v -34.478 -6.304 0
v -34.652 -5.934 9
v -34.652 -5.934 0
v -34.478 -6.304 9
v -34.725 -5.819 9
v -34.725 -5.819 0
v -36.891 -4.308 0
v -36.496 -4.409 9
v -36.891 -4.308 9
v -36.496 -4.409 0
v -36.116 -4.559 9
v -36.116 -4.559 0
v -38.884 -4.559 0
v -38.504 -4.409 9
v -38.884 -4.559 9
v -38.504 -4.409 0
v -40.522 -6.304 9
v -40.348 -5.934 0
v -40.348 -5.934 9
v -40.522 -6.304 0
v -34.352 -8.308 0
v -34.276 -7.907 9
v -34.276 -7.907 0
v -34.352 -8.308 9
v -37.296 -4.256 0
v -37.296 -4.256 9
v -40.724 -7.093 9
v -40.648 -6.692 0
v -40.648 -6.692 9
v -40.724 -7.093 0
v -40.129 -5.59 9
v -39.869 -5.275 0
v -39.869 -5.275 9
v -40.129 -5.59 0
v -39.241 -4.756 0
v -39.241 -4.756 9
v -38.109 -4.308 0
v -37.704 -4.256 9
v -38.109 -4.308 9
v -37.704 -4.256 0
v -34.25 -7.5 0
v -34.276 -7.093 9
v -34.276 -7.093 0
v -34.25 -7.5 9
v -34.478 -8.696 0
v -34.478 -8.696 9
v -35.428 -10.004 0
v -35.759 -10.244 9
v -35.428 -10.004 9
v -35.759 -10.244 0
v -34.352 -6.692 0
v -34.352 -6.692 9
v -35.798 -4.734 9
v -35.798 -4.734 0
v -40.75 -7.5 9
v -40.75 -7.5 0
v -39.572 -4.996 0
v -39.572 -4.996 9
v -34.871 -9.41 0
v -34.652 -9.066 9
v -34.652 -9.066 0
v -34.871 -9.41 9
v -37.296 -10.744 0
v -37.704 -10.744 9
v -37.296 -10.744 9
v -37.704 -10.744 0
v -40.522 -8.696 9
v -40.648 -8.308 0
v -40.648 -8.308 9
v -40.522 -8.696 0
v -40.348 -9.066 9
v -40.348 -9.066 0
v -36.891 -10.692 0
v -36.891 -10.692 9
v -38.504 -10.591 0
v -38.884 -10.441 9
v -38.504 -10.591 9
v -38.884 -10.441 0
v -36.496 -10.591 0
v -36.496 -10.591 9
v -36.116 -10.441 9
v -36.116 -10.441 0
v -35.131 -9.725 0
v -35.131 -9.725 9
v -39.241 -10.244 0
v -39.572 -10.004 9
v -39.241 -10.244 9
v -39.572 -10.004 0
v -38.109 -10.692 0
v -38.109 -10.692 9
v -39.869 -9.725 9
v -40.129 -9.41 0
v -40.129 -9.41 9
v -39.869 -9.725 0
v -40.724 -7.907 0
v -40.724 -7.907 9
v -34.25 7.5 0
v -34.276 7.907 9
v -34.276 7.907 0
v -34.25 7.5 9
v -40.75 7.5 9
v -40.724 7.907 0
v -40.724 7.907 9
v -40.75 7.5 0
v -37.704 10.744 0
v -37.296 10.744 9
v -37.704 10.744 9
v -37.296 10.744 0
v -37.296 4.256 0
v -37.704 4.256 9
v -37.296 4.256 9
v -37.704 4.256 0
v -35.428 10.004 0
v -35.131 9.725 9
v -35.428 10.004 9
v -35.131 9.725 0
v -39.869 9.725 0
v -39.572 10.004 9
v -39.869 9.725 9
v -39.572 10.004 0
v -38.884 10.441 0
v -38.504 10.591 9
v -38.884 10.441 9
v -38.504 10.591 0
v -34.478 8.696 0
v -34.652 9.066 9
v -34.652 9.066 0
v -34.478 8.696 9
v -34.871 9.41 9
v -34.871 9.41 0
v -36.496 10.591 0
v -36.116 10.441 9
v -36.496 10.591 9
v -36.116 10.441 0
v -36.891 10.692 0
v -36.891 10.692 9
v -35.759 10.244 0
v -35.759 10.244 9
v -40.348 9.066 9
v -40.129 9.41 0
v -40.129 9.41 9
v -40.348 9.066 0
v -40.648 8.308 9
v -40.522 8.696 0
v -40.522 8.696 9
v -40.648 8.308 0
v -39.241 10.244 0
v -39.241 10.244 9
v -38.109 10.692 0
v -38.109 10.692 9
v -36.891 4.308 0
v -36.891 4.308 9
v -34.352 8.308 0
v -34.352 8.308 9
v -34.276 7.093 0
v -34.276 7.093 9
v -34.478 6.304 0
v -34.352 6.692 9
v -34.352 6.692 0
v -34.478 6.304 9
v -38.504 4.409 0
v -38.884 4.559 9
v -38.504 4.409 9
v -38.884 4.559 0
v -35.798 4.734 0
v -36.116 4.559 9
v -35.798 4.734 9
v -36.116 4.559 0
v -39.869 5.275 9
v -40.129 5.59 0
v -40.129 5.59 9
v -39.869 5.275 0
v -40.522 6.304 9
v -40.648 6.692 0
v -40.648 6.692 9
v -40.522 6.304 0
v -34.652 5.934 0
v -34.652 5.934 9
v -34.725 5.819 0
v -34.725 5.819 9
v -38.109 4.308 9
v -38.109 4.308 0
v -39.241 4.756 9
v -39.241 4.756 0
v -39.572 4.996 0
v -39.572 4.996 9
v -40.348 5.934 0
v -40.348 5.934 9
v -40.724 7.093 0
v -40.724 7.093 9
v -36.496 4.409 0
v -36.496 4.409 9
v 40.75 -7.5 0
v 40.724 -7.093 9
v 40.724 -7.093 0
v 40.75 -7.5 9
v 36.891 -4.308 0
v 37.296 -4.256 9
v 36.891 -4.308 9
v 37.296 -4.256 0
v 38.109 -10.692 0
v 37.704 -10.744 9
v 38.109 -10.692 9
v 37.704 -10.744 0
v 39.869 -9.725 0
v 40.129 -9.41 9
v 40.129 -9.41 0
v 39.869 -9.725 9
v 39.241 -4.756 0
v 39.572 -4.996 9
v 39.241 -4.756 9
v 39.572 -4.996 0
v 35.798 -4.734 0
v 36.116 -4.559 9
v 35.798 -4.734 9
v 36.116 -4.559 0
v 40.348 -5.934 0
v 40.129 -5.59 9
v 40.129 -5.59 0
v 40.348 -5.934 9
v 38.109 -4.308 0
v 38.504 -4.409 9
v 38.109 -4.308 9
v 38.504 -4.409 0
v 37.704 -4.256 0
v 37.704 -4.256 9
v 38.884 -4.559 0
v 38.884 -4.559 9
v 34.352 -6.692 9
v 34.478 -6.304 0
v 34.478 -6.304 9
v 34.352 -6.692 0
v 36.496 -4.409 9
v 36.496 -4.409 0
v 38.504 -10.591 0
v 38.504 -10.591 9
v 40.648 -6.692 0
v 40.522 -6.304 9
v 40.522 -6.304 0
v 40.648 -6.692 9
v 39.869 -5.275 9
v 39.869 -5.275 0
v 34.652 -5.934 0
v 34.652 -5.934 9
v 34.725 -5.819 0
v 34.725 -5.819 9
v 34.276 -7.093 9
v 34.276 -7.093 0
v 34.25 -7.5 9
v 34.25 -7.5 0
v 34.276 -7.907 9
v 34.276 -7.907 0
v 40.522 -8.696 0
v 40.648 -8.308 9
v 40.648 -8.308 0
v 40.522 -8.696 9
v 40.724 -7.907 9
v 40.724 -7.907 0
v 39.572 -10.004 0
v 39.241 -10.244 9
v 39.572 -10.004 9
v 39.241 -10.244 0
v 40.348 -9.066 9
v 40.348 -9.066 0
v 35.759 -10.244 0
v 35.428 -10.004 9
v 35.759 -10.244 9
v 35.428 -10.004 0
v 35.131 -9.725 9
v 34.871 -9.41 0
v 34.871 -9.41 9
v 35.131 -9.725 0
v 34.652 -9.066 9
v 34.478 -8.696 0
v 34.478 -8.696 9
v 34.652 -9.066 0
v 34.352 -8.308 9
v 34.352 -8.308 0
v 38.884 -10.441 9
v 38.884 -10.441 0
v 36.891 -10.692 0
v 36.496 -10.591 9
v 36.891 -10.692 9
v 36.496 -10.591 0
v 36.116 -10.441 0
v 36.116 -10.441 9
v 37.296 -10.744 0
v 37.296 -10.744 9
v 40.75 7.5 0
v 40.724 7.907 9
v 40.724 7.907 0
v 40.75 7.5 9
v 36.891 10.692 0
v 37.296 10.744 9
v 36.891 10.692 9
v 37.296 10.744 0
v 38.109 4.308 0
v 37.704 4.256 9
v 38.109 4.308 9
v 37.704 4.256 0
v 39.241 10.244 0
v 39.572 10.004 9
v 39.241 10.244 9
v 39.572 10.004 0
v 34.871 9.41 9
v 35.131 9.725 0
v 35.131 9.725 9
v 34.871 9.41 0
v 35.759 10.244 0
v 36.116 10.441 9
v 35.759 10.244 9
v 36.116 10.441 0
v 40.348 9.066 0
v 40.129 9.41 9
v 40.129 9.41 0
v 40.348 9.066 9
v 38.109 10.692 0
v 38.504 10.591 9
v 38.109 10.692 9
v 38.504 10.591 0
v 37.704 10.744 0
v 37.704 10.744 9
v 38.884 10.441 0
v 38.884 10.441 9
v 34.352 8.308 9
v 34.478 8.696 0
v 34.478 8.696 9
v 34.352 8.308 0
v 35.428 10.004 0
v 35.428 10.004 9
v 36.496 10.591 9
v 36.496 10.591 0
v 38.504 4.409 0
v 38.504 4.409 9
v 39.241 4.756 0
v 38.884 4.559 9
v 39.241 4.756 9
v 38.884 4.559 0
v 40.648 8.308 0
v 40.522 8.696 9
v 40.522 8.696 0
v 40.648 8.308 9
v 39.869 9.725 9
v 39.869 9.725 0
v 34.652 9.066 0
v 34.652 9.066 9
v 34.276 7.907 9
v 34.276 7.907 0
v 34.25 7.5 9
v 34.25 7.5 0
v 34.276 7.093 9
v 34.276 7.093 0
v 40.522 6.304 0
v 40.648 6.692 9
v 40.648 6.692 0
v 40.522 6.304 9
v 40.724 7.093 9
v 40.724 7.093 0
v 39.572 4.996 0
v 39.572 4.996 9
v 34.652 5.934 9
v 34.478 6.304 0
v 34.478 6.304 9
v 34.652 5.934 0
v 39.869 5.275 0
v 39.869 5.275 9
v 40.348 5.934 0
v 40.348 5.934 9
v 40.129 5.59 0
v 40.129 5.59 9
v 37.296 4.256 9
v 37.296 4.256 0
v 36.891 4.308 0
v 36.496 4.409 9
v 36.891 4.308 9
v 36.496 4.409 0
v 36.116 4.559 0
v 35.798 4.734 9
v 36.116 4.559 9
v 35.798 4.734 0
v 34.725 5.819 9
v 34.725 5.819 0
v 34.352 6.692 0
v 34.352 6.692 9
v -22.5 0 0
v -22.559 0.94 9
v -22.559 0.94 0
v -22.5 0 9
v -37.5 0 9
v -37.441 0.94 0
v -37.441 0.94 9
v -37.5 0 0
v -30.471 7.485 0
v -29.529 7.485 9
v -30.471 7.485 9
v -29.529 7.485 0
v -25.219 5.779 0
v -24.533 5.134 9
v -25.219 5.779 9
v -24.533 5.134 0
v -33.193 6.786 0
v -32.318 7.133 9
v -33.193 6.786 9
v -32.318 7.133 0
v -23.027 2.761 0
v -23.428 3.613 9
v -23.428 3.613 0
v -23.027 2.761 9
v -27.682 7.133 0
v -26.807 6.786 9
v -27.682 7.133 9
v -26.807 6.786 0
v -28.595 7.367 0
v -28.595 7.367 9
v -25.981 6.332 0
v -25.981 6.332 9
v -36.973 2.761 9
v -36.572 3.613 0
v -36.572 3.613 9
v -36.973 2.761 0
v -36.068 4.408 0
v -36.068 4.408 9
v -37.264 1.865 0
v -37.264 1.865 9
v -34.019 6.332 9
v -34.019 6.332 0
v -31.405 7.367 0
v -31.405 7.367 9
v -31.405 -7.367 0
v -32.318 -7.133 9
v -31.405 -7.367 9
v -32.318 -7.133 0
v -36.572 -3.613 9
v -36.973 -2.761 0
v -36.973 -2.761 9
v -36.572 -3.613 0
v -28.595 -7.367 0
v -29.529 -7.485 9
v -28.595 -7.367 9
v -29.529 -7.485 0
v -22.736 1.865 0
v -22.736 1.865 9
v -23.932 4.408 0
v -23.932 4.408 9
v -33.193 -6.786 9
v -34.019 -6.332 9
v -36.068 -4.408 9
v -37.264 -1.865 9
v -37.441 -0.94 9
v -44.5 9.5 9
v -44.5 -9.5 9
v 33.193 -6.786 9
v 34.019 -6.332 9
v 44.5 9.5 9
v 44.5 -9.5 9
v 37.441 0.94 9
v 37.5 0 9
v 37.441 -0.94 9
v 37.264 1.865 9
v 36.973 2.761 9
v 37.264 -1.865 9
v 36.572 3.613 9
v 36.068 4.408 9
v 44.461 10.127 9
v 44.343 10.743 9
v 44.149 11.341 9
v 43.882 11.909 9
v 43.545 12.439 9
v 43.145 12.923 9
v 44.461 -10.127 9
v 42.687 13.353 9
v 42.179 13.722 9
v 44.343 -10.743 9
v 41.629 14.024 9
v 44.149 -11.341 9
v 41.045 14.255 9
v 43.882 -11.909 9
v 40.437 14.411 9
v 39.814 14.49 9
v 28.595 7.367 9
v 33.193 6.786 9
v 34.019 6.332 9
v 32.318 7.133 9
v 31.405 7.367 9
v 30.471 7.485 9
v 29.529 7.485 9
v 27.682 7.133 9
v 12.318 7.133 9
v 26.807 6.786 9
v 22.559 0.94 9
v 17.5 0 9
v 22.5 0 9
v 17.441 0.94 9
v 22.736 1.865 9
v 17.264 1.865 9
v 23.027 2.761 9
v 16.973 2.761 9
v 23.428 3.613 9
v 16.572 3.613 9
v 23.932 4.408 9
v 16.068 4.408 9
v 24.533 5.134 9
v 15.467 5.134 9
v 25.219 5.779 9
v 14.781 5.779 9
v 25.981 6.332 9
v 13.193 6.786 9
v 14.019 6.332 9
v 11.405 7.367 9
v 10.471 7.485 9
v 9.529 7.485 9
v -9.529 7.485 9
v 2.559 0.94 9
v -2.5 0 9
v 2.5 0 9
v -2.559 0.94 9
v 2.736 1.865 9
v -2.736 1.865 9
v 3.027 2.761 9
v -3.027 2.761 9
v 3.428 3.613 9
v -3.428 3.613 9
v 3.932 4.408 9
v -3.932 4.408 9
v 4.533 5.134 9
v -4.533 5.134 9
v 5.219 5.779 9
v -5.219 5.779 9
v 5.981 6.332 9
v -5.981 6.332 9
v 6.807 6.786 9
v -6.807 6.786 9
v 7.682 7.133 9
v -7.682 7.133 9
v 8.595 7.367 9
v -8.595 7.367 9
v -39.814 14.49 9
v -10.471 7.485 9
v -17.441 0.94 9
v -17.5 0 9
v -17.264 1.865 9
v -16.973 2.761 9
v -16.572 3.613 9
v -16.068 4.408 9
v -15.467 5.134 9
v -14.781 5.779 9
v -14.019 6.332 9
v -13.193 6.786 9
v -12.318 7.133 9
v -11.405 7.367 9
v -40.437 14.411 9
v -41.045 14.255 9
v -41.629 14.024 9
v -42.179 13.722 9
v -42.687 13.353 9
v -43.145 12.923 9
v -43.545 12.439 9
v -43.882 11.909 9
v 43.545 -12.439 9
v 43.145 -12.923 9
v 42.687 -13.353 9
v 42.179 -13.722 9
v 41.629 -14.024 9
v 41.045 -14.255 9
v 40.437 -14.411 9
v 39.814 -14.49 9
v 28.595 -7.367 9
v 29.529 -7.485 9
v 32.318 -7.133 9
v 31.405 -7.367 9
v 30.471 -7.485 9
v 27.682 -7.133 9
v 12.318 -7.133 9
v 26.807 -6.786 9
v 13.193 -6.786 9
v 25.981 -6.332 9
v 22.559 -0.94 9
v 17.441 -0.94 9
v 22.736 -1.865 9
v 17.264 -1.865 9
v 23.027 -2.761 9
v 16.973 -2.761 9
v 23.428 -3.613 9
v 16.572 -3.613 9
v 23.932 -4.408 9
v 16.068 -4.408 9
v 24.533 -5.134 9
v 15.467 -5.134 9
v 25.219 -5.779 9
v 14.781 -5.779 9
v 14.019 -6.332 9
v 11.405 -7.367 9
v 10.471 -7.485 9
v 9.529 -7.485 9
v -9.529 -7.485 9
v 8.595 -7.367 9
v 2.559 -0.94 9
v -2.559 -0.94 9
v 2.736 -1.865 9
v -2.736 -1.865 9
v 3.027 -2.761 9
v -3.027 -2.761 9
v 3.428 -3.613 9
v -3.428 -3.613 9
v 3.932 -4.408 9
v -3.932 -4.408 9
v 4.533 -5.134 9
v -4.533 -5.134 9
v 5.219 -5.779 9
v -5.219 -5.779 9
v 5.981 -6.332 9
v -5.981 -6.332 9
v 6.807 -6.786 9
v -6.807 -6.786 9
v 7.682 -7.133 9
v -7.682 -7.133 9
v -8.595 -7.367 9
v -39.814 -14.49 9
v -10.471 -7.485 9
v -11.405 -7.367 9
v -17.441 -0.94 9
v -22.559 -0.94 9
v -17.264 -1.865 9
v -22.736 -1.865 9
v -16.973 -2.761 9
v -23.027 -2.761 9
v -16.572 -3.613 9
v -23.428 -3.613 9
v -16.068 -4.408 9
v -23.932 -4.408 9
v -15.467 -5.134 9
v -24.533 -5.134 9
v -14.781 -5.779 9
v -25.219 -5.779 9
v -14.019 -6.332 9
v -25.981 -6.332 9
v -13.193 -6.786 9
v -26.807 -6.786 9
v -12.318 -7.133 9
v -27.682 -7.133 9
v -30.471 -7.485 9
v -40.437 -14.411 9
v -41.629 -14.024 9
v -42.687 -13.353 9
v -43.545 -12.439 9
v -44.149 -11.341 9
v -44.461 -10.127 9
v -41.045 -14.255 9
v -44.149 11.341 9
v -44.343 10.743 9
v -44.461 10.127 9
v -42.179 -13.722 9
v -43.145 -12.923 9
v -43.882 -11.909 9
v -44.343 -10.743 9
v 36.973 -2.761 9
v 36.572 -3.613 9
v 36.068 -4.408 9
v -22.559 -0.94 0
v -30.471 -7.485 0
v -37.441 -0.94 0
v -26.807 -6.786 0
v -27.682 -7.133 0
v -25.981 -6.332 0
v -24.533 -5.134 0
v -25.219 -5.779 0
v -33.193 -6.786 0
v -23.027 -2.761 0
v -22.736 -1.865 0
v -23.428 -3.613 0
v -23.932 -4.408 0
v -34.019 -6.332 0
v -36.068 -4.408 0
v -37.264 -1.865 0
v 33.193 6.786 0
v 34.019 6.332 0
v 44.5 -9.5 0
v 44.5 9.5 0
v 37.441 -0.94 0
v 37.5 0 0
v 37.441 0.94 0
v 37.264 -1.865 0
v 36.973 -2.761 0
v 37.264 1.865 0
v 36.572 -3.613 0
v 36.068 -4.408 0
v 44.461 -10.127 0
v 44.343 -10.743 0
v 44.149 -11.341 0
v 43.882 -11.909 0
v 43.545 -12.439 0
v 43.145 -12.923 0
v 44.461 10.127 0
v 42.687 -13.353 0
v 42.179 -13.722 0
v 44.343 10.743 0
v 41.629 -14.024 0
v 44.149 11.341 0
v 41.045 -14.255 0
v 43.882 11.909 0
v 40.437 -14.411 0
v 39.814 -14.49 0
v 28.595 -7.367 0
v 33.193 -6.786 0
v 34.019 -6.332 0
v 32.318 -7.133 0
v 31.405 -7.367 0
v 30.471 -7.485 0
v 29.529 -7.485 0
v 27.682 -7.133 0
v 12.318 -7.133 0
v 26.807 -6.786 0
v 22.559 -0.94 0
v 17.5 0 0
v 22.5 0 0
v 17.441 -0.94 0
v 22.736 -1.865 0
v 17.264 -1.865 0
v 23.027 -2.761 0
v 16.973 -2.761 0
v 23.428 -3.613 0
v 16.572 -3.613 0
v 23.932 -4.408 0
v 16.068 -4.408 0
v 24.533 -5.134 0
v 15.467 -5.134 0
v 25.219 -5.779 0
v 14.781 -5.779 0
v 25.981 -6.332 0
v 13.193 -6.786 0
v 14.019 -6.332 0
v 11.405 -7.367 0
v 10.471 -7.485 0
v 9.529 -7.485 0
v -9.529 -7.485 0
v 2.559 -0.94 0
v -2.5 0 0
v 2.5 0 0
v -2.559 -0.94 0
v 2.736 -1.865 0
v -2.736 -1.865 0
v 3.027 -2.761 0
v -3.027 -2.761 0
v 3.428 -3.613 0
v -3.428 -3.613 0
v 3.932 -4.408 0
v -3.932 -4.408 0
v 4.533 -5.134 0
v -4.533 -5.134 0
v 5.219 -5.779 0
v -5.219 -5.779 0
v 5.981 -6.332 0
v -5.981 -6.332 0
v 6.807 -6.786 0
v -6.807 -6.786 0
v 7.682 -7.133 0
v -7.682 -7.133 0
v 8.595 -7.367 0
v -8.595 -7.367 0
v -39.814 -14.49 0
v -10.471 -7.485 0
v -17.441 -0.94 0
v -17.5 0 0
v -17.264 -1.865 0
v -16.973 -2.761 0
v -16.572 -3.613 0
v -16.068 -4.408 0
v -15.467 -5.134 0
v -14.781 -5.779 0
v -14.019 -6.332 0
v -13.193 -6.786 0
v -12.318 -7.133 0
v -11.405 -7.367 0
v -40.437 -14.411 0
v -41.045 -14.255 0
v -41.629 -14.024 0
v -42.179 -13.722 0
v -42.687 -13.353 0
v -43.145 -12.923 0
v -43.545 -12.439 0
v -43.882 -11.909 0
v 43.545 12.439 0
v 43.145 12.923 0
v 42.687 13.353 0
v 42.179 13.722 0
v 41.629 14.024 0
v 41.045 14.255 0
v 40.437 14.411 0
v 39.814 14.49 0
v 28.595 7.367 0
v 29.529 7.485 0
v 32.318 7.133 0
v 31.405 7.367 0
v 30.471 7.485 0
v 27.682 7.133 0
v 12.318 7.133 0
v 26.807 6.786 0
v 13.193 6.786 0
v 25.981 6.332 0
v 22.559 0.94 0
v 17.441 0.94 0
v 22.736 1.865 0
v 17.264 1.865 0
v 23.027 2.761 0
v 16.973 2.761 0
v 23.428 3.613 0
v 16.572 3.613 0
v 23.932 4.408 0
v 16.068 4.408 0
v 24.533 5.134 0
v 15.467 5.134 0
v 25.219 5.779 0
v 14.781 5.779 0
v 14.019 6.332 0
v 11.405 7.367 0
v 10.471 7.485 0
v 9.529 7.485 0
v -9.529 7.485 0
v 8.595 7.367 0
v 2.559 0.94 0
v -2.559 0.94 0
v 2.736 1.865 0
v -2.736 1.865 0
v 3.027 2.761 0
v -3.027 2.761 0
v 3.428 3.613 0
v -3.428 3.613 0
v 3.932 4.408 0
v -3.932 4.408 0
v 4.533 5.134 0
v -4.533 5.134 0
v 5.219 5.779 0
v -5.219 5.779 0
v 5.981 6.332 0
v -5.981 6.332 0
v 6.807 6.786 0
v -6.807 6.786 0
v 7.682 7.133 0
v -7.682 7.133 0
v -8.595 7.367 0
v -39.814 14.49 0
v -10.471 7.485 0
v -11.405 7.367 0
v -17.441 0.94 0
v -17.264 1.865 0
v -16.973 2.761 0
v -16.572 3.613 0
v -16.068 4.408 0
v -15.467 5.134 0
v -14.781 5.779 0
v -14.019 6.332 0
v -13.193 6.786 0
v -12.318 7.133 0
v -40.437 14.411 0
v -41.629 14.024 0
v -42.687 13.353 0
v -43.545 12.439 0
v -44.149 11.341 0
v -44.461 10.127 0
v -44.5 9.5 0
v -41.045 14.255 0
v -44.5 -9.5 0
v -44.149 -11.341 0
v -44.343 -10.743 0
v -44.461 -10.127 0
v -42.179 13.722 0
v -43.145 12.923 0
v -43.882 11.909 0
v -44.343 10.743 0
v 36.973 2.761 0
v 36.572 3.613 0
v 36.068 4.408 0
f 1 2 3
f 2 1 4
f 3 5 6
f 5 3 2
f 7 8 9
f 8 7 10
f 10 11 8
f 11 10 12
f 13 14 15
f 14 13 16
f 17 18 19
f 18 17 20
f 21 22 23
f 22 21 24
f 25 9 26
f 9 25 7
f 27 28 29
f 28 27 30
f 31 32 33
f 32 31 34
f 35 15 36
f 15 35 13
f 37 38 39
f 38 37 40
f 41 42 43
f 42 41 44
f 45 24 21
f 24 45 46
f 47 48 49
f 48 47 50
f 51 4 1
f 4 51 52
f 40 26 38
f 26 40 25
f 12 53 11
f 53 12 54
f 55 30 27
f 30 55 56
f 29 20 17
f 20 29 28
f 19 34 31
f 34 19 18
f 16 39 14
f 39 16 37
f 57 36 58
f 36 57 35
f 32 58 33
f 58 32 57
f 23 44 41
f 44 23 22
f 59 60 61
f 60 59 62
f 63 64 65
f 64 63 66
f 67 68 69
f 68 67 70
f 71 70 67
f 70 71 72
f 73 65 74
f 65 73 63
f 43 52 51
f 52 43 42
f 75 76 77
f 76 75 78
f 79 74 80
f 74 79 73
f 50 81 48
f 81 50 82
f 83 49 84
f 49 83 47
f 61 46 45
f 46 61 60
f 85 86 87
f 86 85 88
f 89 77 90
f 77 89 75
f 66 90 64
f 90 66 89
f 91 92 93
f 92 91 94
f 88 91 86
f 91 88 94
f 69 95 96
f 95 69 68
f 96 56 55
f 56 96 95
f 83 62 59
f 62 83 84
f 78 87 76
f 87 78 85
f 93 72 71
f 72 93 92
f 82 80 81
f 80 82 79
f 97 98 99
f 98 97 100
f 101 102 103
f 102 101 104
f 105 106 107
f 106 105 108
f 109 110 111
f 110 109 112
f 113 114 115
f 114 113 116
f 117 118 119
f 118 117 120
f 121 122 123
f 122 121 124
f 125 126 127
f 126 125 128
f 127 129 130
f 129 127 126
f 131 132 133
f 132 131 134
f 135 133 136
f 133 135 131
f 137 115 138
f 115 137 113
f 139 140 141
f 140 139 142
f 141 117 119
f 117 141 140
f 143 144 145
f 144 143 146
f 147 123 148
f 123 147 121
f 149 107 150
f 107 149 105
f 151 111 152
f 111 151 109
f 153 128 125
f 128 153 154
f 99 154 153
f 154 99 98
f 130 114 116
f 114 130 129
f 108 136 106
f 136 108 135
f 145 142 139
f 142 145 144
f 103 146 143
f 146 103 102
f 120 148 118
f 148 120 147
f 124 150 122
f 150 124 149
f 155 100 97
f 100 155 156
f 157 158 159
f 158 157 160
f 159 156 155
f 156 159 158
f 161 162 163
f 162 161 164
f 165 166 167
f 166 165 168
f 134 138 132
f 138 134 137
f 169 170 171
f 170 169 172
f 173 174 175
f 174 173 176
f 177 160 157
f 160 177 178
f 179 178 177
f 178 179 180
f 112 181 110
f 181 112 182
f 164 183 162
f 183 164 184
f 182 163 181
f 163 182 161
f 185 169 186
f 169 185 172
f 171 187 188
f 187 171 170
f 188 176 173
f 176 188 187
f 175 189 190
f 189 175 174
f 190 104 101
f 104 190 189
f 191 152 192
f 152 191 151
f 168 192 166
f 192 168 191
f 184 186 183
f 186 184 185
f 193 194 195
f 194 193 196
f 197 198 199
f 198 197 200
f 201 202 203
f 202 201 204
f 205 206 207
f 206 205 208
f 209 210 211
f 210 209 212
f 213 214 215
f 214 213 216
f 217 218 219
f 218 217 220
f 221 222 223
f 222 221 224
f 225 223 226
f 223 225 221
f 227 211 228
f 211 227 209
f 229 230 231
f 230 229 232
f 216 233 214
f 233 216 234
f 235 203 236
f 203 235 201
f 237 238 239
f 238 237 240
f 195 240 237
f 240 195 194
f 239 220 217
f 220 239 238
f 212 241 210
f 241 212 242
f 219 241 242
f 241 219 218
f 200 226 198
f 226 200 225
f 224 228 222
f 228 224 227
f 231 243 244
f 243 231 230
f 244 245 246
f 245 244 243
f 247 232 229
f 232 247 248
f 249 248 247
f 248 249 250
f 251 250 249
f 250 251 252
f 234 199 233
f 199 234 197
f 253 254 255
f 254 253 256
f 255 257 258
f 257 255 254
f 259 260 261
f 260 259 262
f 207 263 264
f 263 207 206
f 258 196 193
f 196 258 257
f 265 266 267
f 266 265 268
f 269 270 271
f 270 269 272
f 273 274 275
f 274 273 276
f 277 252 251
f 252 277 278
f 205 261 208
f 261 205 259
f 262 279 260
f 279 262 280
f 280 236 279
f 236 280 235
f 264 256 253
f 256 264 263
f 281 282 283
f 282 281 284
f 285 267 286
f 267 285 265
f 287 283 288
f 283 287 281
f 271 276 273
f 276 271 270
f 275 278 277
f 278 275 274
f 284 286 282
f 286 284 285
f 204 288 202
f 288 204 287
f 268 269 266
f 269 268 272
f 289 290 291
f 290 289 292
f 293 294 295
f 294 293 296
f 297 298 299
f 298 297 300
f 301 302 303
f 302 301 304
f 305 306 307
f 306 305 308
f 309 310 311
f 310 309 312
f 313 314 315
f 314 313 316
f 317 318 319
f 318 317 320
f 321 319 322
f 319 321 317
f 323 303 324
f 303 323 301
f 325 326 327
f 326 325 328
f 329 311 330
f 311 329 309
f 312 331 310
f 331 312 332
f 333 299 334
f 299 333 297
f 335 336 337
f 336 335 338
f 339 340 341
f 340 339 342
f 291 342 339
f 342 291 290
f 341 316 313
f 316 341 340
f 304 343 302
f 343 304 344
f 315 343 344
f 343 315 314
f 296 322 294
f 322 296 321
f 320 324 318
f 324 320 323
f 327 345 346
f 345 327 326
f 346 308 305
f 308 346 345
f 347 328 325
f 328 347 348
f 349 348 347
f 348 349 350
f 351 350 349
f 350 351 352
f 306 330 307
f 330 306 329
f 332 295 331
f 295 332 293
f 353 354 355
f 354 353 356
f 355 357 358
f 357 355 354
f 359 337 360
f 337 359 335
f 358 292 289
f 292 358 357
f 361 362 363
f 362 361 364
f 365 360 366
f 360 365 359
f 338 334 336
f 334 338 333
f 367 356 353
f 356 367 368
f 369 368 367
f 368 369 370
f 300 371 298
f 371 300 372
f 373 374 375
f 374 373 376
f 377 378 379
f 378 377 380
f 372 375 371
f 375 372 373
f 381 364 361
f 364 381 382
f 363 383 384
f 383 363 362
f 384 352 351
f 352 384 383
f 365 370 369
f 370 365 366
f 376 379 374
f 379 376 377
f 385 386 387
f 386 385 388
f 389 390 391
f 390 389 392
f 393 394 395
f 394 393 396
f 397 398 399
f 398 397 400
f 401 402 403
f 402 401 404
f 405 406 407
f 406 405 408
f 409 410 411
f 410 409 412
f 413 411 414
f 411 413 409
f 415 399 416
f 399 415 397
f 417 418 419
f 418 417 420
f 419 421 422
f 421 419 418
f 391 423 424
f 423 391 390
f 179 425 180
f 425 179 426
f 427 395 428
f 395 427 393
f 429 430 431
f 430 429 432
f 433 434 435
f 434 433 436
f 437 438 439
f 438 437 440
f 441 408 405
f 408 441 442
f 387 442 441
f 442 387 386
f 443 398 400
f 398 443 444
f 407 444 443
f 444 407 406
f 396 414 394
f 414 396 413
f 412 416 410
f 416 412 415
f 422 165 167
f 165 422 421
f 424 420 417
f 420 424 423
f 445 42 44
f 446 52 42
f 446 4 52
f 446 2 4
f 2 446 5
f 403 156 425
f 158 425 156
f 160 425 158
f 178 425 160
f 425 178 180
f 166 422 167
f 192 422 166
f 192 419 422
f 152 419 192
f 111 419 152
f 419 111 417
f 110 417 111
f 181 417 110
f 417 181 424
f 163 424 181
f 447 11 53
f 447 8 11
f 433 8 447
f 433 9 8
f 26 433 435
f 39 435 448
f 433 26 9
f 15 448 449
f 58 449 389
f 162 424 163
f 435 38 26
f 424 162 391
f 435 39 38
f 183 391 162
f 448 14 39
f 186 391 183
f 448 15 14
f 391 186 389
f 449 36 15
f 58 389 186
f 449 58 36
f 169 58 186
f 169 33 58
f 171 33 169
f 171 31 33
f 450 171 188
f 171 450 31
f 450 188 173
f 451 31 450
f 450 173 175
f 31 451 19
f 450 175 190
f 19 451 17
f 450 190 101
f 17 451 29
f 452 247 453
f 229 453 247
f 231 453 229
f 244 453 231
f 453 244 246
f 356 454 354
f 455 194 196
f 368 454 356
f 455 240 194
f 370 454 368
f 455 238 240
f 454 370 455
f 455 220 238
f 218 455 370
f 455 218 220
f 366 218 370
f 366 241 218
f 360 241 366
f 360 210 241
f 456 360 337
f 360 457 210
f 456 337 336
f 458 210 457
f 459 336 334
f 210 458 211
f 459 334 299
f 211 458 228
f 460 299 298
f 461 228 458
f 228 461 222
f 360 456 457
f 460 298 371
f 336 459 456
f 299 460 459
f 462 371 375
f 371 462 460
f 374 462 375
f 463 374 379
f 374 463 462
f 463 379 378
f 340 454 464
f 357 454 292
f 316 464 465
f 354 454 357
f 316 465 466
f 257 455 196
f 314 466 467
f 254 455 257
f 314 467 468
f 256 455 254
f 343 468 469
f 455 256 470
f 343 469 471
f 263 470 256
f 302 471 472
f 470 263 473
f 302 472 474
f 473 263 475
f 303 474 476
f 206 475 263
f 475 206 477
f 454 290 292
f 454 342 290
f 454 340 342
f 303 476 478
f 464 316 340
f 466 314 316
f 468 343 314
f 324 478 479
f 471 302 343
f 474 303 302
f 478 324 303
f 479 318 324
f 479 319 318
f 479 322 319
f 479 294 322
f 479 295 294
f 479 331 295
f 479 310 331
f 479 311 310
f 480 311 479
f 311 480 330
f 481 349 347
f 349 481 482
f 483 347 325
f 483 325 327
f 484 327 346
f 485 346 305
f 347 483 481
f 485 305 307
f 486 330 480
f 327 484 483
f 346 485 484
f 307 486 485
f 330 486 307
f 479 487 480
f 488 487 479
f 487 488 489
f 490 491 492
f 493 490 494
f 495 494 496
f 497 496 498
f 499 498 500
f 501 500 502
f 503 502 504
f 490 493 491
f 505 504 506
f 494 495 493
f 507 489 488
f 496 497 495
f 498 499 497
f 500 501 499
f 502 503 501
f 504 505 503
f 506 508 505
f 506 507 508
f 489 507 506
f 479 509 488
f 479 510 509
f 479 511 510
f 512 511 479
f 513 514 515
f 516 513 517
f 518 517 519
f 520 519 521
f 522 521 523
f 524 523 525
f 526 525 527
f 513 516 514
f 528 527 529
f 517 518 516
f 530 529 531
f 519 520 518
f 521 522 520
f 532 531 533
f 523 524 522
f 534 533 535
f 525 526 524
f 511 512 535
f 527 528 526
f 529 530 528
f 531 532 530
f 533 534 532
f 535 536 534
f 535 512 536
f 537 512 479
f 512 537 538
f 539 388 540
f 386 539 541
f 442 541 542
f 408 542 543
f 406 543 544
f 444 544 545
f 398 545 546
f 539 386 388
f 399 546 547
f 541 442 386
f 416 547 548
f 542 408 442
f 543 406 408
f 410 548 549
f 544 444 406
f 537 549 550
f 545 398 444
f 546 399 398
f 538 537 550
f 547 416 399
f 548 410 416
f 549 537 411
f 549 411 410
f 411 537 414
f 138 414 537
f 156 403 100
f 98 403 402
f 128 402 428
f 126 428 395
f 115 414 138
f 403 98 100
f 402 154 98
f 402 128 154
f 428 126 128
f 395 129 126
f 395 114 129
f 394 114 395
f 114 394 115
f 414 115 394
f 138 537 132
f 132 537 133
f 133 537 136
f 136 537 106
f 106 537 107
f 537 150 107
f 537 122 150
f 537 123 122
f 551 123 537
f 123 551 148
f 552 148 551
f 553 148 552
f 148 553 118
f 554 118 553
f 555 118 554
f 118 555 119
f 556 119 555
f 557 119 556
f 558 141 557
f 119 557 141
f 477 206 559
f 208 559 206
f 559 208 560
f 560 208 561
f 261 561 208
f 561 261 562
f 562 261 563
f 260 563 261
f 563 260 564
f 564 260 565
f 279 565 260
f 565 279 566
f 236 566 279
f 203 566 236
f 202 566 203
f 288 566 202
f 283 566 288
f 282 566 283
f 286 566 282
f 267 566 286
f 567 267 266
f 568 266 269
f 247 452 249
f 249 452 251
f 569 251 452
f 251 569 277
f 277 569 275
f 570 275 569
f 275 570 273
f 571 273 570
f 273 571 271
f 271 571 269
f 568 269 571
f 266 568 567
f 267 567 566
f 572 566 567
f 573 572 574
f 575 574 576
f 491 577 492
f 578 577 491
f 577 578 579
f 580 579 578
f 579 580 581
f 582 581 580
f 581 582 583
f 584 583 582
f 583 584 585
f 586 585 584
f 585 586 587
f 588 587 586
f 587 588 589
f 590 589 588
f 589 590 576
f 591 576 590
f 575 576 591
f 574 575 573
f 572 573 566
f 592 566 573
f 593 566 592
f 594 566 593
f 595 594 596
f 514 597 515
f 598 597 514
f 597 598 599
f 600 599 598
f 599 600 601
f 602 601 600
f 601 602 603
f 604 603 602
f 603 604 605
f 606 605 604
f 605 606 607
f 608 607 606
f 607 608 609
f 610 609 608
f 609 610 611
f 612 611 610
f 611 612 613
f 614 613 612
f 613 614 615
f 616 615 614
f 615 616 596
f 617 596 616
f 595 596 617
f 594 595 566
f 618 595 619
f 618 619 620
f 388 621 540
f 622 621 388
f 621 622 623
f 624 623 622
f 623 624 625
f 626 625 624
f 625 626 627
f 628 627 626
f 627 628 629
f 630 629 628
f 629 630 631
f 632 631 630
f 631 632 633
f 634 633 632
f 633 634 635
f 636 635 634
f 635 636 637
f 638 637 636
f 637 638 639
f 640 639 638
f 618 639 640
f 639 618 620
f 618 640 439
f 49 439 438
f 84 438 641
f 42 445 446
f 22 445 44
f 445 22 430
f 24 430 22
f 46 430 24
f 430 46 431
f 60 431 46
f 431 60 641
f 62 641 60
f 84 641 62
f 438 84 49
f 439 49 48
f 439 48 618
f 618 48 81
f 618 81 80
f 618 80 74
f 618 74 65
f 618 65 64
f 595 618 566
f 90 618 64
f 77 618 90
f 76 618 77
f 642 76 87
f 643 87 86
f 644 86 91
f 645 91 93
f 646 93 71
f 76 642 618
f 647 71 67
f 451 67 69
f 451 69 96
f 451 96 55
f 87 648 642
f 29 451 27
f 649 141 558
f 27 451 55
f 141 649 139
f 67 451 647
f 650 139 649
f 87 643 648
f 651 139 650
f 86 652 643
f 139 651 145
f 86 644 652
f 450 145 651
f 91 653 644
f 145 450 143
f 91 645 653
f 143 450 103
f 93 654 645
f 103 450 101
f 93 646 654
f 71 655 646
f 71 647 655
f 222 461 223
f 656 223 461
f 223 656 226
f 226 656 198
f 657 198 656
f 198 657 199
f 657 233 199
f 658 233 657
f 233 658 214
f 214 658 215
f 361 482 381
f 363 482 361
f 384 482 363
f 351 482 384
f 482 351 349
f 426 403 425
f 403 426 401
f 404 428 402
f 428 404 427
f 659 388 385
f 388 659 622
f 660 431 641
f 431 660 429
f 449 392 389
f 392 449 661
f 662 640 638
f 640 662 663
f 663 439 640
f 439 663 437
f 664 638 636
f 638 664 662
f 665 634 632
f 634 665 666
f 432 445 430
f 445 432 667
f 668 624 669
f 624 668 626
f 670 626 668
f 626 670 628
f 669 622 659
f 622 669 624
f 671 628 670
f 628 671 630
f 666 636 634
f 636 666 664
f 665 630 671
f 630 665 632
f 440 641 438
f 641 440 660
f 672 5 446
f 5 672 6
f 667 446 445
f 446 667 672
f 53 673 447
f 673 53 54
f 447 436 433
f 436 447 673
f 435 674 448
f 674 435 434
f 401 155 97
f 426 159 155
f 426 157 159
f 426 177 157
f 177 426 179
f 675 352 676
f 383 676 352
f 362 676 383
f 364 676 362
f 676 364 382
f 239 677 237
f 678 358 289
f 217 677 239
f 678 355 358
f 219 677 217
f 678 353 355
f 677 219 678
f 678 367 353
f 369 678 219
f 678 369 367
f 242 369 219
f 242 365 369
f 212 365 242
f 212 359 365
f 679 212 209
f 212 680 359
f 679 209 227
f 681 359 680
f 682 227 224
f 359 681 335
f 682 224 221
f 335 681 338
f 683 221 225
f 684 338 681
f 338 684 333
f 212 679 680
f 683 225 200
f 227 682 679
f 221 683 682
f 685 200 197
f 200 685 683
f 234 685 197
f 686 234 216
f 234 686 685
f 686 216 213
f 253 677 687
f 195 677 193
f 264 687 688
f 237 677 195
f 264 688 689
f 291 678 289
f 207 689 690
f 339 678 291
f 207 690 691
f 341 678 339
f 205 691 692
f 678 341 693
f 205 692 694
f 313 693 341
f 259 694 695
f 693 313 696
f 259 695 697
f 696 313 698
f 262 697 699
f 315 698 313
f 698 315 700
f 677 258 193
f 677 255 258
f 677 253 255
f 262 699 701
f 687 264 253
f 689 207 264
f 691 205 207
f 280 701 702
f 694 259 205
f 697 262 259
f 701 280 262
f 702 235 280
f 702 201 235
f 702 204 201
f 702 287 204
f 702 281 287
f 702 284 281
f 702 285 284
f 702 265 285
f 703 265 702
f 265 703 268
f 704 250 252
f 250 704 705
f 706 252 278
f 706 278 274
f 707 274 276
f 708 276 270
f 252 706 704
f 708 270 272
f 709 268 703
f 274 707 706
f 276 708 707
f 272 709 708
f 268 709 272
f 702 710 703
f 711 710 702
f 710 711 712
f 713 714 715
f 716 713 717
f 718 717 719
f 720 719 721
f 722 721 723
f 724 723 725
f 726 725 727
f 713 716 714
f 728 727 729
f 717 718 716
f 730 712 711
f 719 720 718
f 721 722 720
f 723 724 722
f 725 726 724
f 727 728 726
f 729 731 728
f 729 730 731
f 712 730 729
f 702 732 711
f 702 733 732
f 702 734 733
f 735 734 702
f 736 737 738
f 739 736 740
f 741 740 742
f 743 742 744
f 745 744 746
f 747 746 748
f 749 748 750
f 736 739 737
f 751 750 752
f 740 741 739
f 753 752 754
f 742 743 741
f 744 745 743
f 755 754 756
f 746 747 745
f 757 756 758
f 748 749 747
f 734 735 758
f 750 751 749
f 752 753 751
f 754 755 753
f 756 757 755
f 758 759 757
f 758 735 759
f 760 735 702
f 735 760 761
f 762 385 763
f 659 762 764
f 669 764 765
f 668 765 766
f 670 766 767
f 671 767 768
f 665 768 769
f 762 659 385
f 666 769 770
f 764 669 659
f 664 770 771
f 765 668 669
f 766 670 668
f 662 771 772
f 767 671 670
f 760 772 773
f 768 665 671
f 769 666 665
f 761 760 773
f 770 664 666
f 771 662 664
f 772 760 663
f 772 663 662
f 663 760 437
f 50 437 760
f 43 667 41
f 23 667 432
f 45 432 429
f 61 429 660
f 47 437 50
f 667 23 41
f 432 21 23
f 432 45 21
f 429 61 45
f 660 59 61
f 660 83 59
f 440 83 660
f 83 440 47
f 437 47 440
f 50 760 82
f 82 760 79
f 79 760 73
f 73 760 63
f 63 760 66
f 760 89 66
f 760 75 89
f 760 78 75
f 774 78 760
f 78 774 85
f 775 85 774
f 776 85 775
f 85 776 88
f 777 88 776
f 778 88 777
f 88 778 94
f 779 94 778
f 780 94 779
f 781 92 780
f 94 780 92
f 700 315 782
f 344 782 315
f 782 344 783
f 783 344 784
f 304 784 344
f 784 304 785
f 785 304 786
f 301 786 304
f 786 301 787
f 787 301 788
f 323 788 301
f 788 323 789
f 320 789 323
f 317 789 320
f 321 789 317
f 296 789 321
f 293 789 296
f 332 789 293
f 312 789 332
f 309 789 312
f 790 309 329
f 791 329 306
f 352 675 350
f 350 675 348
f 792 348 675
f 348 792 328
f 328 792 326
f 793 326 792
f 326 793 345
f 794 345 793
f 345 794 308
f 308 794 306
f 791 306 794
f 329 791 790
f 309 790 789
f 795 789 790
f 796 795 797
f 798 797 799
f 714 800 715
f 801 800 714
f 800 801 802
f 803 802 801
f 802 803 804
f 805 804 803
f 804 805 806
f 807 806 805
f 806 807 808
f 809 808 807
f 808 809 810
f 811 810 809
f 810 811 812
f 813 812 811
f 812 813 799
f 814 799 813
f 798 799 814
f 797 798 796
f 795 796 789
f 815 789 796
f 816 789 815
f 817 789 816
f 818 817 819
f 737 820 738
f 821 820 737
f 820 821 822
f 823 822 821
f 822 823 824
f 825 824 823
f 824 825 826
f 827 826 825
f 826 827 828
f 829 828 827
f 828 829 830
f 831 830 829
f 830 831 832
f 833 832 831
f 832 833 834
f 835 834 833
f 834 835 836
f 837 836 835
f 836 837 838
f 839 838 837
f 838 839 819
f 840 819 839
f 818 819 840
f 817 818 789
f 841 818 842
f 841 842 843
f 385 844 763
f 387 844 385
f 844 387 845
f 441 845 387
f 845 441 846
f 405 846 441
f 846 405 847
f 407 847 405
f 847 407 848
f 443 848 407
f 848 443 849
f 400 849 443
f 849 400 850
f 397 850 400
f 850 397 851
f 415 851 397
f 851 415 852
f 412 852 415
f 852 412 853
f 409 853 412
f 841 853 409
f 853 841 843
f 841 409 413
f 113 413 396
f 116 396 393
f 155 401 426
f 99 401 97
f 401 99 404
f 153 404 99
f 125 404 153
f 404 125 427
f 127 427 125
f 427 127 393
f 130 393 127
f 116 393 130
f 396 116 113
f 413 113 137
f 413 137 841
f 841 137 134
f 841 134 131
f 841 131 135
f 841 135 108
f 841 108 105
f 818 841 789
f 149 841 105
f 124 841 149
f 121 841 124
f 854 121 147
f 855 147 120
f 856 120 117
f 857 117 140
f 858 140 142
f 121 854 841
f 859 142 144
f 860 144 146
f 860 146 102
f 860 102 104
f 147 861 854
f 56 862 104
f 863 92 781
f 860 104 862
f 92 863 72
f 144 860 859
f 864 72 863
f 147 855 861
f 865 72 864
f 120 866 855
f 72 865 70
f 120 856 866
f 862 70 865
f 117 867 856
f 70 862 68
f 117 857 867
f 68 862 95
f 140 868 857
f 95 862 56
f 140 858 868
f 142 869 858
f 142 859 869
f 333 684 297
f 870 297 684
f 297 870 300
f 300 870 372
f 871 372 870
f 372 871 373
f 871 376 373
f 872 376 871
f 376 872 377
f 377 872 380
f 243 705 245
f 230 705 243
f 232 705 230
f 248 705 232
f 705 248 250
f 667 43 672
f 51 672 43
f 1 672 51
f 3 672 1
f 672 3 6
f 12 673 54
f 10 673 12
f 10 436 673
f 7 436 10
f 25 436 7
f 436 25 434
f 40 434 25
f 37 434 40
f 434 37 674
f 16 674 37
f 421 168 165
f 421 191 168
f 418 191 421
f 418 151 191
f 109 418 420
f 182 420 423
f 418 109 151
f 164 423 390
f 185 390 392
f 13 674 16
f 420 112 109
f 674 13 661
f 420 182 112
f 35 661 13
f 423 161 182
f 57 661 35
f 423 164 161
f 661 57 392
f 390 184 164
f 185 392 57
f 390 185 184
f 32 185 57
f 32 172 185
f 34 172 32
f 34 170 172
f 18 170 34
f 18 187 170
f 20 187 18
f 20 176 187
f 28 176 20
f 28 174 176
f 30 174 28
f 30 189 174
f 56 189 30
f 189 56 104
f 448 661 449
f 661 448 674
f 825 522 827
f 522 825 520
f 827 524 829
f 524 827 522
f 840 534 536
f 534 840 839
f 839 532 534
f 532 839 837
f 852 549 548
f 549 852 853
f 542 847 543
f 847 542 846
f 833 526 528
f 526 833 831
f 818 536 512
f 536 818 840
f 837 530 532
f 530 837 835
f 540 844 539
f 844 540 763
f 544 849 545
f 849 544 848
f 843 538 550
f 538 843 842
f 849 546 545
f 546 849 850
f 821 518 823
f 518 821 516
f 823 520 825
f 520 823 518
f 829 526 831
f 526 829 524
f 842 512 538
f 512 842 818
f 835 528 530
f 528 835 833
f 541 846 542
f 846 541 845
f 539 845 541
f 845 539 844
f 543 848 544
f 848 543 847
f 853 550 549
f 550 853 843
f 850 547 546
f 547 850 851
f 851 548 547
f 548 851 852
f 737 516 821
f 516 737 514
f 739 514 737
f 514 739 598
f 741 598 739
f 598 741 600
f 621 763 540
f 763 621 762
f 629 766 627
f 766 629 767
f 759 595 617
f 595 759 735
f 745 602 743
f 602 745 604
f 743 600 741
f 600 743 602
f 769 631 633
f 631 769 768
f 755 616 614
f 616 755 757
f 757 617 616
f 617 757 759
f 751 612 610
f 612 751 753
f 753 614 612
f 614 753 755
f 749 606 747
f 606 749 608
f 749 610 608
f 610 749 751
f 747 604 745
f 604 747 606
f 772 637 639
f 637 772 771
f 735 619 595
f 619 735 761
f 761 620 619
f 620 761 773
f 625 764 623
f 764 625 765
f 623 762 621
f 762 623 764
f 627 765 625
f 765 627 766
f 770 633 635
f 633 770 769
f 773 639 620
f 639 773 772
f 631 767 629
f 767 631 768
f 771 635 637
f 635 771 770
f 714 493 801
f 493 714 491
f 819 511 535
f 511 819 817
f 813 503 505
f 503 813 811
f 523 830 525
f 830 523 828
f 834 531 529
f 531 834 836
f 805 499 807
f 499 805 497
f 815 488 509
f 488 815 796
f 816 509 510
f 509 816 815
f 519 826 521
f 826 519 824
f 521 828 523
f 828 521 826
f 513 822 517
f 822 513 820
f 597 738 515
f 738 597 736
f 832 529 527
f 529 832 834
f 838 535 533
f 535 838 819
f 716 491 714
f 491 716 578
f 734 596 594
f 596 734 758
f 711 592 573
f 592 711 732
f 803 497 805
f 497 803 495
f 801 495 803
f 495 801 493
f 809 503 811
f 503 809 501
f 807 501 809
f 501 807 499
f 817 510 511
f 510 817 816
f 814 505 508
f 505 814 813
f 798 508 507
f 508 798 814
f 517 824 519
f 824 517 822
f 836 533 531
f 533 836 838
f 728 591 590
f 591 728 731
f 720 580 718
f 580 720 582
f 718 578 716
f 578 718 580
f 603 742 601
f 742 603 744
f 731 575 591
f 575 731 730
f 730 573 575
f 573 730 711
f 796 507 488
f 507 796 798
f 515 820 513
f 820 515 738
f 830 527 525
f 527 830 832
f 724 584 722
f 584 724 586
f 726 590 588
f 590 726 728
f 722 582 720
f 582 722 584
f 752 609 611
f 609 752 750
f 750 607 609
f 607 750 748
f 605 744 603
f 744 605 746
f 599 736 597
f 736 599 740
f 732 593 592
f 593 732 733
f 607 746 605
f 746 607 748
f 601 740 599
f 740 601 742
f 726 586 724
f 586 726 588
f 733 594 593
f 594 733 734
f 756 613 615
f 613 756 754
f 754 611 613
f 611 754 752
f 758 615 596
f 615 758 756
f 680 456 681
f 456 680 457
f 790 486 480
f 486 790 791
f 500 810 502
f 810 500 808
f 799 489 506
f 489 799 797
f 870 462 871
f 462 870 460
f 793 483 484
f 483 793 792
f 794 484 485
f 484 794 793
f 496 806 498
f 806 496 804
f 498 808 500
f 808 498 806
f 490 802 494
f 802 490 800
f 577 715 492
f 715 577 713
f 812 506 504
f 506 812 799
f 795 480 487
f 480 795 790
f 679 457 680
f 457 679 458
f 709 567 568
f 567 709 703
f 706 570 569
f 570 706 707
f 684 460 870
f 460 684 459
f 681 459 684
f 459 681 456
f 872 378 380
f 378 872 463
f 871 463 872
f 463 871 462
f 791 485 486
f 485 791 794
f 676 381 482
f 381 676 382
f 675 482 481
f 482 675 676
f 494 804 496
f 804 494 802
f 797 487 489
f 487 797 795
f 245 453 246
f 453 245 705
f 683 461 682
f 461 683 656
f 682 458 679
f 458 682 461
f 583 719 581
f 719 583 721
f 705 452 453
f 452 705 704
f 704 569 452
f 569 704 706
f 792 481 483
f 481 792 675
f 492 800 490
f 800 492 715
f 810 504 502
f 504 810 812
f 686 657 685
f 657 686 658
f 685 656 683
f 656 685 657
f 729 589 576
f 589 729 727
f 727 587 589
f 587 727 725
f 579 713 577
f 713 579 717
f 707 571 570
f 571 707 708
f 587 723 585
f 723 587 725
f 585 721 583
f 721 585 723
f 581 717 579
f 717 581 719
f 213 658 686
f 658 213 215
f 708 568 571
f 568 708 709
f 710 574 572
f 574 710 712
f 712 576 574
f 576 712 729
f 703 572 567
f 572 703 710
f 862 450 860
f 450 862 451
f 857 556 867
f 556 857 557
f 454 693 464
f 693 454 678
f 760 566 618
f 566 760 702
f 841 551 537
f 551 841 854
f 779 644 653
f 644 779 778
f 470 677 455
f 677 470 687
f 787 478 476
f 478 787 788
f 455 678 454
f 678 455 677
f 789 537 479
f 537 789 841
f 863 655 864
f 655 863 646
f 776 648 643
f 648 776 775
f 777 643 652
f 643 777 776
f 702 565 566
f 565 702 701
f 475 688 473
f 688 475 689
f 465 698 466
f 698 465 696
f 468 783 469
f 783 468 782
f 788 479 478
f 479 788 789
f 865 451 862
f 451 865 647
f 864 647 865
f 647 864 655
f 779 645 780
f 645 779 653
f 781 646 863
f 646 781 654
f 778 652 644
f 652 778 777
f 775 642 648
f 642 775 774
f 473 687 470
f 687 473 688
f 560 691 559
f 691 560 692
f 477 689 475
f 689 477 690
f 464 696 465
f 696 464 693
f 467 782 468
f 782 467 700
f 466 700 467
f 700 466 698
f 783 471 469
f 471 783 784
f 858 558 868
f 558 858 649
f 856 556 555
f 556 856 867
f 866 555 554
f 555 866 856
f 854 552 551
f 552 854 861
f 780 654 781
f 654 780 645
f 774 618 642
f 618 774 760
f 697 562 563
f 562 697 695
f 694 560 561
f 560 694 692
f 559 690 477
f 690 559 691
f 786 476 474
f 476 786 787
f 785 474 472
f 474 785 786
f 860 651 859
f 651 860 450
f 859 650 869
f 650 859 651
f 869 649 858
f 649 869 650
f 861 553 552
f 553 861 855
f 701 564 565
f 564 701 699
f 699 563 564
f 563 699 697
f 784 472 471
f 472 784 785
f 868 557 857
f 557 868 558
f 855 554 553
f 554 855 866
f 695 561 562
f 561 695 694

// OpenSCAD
$fn = 50;


difference() {
	union() {
		hull() {
			translate(v = [-39.5000000000, 9.5000000000, 0]) {
				cylinder(h = 9, r = 5);
			}
			translate(v = [39.5000000000, 9.5000000000, 0]) {
				cylinder(h = 9, r = 5);
			}
			translate(v = [-39.5000000000, -9.5000000000, 0]) {
				cylinder(h = 9, r = 5);
			}
			translate(v = [39.5000000000, -9.5000000000, 0]) {
				cylinder(h = 9, r = 5);
			}
		}
	}
	union() {
		#translate(v = [-37.5000000000, -7.5000000000, -100.0000000000]) {
			cylinder(h = 200, r = 3.2500000000);
		}
		#translate(v = [-37.5000000000, 7.5000000000, -100.0000000000]) {
			cylinder(h = 200, r = 3.2500000000);
		}
		#translate(v = [37.5000000000, -7.5000000000, -100.0000000000]) {
			cylinder(h = 200, r = 3.2500000000);
		}
		#translate(v = [37.5000000000, 7.5000000000, -100.0000000000]) {
			cylinder(h = 200, r = 3.2500000000);
		}
		#translate(v = [-30.0000000000, 0, 0]) {
			cylinder(h = 9, r = 7.5000000000);
		}
		#translate(v = [-10.0000000000, 0, 0]) {
			cylinder(h = 9, r = 7.5000000000);
		}
		#translate(v = [10.0000000000, 0, 0]) {
			cylinder(h = 9, r = 7.5000000000);
		}
		#translate(v = [30.0000000000, 0, 0]) {
			cylinder(h = 9, r = 7.5000000000);
		}
	}
}
